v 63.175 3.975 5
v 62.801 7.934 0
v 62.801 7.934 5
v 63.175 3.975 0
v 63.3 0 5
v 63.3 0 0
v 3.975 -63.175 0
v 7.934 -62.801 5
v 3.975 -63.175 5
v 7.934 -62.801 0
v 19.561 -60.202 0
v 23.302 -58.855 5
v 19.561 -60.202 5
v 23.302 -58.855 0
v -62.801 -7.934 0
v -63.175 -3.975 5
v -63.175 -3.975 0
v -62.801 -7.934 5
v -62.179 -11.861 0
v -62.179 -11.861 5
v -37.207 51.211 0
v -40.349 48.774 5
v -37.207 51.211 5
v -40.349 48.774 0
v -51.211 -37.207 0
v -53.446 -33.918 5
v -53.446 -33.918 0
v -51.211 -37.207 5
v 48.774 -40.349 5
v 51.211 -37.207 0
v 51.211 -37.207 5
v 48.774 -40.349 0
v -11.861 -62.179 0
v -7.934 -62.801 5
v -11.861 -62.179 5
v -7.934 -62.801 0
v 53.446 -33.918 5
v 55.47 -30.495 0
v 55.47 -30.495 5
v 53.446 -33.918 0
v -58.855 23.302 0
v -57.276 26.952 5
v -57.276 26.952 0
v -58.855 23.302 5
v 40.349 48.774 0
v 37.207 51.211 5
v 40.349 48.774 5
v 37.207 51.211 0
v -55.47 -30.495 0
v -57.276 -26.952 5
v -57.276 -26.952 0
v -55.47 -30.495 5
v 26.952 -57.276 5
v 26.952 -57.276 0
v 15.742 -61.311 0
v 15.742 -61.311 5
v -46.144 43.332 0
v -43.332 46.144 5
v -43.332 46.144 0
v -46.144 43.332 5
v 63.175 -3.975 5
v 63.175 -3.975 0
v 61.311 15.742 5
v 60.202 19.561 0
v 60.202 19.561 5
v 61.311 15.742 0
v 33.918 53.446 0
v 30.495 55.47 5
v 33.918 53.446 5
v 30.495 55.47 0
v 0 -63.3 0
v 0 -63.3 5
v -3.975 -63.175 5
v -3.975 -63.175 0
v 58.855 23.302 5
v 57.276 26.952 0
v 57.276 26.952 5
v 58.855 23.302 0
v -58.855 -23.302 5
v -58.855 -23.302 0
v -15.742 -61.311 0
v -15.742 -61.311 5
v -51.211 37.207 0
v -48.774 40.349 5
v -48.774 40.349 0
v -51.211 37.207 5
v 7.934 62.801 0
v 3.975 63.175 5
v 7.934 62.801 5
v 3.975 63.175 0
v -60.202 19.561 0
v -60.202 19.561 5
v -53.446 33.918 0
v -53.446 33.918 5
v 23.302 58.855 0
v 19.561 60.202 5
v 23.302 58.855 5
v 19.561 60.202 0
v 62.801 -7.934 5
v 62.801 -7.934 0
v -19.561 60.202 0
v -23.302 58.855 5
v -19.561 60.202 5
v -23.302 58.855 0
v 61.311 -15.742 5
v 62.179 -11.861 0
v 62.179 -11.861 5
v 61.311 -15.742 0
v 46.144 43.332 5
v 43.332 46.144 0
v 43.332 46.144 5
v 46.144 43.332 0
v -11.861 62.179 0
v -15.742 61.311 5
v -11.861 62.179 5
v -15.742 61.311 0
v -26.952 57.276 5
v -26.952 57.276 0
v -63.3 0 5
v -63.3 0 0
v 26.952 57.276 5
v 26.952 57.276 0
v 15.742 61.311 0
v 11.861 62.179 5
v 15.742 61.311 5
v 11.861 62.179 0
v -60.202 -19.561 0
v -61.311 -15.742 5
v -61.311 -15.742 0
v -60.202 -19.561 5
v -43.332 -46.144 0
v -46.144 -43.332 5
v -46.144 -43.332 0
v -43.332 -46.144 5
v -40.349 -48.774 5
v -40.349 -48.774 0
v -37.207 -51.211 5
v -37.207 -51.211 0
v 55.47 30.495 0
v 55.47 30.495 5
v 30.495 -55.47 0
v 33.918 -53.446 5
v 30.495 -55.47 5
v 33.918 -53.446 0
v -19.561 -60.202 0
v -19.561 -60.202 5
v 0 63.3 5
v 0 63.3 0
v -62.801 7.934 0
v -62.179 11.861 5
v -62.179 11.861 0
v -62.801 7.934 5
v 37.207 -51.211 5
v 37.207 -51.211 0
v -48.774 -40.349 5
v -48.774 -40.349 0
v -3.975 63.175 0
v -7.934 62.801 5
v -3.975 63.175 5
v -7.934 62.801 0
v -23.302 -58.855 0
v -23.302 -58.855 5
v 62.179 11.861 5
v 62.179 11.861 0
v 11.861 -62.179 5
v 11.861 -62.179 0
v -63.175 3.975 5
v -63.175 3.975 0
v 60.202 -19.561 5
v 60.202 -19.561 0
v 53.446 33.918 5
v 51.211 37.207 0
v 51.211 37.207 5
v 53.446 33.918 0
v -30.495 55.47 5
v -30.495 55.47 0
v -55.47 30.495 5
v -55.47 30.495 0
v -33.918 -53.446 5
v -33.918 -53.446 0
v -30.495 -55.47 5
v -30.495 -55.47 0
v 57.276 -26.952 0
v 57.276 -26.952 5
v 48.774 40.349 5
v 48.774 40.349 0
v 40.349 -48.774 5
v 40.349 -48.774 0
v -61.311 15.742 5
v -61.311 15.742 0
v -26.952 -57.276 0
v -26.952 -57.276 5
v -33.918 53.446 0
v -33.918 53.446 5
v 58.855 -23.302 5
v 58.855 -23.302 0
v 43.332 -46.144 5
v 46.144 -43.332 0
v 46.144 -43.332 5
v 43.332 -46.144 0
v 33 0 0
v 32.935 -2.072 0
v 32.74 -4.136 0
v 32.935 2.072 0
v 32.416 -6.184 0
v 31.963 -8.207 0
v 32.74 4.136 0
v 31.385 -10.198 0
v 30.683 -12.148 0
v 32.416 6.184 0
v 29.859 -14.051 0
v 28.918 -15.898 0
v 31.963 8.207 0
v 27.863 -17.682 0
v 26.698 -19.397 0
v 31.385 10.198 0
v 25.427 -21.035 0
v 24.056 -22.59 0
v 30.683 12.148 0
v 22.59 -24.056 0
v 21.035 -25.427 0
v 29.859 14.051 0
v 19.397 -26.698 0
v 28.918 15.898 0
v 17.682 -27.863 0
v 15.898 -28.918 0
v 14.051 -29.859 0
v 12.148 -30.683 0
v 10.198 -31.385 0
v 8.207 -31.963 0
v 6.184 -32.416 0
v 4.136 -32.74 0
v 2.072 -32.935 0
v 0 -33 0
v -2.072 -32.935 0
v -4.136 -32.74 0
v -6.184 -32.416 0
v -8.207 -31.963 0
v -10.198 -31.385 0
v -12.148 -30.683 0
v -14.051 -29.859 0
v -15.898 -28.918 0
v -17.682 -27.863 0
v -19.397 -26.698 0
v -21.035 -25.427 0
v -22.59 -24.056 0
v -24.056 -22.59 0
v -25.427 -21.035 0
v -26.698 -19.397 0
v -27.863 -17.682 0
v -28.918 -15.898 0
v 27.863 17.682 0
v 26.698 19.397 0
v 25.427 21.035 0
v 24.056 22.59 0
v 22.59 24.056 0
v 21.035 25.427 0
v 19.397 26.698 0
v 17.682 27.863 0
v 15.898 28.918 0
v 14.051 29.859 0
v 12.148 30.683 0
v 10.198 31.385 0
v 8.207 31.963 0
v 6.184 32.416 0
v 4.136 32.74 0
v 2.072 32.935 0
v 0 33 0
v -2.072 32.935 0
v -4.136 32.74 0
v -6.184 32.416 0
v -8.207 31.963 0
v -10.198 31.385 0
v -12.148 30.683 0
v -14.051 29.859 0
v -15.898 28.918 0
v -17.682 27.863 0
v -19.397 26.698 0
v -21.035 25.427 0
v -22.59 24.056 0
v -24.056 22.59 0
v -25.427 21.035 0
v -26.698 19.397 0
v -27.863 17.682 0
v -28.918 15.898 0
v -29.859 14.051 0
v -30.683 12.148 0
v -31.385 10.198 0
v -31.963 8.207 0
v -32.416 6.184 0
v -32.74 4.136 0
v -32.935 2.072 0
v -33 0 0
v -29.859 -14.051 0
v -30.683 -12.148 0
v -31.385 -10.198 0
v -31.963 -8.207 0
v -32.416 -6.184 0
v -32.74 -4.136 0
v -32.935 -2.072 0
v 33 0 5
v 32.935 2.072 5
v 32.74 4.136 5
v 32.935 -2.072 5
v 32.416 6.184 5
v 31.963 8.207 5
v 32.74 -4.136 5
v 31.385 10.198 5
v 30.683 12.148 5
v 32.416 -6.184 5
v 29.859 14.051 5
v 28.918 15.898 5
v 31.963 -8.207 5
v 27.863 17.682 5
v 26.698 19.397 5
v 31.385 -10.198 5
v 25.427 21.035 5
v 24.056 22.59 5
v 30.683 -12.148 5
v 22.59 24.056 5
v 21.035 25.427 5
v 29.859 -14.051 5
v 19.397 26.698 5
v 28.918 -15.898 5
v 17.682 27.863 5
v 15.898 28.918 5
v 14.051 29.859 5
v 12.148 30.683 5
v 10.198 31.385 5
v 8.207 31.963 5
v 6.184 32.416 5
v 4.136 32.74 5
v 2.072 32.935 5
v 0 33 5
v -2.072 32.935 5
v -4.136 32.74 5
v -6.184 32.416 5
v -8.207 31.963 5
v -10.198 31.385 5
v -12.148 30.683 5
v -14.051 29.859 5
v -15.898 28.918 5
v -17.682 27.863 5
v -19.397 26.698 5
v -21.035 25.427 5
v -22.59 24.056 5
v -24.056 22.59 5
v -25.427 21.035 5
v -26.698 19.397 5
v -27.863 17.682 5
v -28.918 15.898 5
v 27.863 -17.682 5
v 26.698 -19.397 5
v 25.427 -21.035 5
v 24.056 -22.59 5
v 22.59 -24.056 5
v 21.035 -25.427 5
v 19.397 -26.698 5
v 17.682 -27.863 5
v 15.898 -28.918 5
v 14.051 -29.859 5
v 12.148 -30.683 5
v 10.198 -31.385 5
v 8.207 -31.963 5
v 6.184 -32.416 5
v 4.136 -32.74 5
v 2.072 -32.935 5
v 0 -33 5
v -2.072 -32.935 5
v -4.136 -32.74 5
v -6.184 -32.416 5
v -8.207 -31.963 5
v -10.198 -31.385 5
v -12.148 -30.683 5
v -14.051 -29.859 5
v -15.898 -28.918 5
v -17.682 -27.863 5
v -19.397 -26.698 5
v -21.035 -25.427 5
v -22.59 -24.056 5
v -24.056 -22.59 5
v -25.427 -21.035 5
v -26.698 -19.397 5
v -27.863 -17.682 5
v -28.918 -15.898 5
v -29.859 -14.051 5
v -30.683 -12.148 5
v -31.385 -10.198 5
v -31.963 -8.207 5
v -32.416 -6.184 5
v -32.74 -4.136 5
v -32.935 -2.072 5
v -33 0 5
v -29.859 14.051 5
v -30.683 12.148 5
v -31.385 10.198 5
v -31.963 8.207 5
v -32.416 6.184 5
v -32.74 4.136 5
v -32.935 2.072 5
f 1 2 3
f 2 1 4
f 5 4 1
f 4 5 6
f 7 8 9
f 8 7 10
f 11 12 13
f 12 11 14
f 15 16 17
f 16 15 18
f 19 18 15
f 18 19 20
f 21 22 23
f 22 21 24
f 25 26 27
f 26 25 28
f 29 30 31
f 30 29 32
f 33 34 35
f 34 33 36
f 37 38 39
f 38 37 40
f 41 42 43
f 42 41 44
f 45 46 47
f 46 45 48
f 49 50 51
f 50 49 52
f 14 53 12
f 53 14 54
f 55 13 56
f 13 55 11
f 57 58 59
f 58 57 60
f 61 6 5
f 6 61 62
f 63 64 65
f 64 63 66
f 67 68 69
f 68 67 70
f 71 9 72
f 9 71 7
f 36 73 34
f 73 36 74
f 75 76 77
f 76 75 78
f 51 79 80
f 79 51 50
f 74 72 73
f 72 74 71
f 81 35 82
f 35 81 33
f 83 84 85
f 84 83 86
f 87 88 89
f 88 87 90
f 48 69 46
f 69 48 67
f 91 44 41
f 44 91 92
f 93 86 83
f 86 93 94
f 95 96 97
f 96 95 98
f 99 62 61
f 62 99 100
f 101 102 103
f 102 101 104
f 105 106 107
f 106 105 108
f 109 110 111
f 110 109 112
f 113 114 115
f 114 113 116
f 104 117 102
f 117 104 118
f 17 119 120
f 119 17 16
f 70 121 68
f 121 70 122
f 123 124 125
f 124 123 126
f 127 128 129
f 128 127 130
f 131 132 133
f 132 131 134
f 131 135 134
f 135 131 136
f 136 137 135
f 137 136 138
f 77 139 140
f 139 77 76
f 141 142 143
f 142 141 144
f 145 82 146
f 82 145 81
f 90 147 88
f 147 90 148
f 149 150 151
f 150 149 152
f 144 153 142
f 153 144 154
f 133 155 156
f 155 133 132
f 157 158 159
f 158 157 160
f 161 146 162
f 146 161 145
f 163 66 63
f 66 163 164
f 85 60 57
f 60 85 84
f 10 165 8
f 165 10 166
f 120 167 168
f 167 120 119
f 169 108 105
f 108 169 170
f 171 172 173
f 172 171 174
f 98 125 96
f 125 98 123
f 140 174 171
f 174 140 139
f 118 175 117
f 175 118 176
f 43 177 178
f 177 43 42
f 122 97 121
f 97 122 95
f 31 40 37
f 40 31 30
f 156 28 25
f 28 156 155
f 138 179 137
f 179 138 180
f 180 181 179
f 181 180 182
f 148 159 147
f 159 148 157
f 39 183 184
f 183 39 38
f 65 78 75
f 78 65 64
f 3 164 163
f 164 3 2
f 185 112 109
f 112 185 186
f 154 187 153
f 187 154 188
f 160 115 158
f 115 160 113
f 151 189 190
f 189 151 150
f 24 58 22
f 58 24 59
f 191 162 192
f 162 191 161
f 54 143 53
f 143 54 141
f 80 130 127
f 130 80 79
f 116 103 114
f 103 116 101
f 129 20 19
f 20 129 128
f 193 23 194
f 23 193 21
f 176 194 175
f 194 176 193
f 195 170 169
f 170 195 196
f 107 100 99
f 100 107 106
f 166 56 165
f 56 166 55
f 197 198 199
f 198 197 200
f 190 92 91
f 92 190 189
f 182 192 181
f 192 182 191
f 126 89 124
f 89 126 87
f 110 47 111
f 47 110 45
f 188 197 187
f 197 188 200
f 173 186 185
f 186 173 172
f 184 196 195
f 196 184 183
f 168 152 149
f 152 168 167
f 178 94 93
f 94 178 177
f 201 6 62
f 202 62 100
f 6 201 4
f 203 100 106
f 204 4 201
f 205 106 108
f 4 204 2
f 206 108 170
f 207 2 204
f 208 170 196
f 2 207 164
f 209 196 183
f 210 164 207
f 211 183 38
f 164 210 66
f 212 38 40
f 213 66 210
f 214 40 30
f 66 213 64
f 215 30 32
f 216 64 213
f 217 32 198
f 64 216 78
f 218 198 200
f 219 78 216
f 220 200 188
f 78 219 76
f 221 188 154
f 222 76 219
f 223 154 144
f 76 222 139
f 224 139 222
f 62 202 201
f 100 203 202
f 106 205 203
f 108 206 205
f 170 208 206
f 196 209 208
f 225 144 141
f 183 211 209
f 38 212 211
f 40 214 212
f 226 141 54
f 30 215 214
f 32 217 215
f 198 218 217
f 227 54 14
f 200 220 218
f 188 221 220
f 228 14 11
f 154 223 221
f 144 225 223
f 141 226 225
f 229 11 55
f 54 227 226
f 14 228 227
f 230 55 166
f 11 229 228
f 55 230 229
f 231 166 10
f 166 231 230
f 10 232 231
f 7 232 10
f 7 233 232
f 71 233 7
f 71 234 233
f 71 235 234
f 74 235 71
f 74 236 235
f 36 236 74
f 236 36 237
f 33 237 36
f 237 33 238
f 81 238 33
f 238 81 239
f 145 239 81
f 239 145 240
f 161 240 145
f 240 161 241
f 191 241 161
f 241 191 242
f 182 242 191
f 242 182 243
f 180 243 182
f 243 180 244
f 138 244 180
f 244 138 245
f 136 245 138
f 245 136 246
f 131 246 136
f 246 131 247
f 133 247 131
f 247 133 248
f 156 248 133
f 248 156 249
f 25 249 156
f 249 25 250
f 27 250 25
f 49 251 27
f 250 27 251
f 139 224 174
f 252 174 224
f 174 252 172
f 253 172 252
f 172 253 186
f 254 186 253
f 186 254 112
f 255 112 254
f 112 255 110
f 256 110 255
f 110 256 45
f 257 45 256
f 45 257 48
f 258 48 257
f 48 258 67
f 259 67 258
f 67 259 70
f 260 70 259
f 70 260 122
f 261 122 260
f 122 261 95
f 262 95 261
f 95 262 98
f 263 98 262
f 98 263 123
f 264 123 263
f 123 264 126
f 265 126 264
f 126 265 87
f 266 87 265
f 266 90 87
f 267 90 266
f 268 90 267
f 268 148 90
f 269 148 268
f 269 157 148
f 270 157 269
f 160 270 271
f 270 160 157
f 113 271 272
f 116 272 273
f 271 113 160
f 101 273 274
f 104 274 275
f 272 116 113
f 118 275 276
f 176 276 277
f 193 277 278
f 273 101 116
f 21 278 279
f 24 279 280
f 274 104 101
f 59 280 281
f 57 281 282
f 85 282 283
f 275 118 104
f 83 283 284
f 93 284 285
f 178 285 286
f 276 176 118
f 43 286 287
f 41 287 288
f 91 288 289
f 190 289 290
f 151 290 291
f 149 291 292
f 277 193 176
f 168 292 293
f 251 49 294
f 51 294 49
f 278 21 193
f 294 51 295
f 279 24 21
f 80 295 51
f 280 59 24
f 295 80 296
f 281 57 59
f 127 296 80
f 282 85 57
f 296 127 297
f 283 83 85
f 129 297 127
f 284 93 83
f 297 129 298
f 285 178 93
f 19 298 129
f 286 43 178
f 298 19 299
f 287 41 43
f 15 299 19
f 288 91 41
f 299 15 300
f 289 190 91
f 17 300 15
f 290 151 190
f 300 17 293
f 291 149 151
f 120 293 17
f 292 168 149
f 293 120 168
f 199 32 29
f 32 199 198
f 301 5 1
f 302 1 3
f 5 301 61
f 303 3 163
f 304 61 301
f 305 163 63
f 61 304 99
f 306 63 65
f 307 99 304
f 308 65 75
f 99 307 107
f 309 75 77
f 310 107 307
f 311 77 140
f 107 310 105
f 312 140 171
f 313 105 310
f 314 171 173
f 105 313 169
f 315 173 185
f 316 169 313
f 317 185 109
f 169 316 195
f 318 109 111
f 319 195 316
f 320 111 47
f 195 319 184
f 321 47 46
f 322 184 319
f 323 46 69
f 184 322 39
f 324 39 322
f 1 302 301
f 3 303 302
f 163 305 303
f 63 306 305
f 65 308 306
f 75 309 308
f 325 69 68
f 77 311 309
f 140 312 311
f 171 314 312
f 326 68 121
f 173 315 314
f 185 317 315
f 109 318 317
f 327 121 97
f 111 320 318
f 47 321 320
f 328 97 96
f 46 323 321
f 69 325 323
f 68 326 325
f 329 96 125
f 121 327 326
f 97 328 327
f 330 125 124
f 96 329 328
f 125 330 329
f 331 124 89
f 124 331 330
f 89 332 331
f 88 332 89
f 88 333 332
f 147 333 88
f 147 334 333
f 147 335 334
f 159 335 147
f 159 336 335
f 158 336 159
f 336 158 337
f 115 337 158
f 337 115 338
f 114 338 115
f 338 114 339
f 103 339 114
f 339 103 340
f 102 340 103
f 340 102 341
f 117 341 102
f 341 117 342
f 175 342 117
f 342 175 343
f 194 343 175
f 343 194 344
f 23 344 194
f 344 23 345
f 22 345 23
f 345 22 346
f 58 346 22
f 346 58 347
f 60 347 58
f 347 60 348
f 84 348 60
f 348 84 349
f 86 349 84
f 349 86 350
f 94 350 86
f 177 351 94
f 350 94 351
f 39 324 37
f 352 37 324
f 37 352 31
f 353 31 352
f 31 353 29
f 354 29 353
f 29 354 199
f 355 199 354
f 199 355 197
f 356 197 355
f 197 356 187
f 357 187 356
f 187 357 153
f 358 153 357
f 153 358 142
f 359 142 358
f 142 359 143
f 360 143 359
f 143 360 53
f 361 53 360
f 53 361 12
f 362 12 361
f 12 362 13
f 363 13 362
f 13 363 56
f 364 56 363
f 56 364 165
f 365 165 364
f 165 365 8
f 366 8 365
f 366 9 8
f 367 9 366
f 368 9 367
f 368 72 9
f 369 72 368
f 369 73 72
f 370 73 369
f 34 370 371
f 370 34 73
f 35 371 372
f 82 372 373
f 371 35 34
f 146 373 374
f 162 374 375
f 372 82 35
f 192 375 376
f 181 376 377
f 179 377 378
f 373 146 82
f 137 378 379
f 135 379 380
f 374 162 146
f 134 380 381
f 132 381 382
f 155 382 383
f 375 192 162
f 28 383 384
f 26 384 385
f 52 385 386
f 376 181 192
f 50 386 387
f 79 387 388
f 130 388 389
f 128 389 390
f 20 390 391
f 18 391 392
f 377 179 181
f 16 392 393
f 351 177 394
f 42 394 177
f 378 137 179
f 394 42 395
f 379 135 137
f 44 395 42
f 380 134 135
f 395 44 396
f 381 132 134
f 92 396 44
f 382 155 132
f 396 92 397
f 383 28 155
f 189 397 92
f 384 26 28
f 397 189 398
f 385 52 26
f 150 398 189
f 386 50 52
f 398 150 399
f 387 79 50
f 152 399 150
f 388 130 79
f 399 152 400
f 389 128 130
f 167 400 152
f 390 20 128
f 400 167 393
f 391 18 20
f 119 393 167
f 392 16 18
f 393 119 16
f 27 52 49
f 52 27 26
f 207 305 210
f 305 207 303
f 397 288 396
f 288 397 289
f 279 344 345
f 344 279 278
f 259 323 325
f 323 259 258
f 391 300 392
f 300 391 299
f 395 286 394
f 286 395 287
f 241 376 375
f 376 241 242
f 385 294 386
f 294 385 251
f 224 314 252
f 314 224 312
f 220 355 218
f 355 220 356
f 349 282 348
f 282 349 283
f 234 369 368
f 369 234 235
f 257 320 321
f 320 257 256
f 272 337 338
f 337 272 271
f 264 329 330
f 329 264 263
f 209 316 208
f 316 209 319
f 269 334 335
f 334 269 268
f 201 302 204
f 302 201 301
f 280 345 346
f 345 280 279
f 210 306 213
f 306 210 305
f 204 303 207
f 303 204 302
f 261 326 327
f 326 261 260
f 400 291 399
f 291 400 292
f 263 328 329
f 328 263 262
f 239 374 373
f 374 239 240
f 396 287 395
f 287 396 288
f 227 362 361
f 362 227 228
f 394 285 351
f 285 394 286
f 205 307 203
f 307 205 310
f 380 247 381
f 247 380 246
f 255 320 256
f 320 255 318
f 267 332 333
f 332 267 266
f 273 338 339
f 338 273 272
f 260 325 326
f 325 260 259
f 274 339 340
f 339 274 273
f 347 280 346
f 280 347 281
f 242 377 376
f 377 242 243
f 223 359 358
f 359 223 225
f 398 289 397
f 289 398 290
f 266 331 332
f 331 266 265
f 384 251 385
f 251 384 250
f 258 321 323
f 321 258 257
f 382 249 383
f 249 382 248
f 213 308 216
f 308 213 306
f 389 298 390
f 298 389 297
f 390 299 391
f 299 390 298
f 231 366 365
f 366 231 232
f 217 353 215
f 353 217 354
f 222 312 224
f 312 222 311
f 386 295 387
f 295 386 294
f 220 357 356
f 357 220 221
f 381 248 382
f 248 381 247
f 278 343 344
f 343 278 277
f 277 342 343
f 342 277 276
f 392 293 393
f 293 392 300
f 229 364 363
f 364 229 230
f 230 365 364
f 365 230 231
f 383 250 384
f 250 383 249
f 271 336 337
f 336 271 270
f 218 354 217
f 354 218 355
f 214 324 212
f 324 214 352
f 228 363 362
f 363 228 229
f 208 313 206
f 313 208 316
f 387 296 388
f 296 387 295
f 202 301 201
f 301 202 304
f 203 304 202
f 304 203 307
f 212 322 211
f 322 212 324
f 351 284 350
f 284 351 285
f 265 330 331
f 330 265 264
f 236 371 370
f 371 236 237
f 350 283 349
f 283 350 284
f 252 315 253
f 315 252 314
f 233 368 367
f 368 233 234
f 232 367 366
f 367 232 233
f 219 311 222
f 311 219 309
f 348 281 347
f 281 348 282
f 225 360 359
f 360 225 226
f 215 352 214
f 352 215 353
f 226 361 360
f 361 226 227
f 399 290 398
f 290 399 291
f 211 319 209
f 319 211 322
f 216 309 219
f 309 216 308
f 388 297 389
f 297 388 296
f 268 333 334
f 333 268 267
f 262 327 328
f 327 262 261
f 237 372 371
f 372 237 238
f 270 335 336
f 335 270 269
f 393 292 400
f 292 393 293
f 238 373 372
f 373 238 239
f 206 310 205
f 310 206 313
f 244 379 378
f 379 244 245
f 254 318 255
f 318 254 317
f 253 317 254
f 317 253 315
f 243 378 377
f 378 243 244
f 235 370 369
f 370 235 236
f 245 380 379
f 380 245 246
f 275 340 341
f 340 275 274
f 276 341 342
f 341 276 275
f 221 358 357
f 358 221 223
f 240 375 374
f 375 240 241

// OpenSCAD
$fn=100;
difference() {
    cylinder(5, d=126.6);
    cylinder(5, d=66);
}
